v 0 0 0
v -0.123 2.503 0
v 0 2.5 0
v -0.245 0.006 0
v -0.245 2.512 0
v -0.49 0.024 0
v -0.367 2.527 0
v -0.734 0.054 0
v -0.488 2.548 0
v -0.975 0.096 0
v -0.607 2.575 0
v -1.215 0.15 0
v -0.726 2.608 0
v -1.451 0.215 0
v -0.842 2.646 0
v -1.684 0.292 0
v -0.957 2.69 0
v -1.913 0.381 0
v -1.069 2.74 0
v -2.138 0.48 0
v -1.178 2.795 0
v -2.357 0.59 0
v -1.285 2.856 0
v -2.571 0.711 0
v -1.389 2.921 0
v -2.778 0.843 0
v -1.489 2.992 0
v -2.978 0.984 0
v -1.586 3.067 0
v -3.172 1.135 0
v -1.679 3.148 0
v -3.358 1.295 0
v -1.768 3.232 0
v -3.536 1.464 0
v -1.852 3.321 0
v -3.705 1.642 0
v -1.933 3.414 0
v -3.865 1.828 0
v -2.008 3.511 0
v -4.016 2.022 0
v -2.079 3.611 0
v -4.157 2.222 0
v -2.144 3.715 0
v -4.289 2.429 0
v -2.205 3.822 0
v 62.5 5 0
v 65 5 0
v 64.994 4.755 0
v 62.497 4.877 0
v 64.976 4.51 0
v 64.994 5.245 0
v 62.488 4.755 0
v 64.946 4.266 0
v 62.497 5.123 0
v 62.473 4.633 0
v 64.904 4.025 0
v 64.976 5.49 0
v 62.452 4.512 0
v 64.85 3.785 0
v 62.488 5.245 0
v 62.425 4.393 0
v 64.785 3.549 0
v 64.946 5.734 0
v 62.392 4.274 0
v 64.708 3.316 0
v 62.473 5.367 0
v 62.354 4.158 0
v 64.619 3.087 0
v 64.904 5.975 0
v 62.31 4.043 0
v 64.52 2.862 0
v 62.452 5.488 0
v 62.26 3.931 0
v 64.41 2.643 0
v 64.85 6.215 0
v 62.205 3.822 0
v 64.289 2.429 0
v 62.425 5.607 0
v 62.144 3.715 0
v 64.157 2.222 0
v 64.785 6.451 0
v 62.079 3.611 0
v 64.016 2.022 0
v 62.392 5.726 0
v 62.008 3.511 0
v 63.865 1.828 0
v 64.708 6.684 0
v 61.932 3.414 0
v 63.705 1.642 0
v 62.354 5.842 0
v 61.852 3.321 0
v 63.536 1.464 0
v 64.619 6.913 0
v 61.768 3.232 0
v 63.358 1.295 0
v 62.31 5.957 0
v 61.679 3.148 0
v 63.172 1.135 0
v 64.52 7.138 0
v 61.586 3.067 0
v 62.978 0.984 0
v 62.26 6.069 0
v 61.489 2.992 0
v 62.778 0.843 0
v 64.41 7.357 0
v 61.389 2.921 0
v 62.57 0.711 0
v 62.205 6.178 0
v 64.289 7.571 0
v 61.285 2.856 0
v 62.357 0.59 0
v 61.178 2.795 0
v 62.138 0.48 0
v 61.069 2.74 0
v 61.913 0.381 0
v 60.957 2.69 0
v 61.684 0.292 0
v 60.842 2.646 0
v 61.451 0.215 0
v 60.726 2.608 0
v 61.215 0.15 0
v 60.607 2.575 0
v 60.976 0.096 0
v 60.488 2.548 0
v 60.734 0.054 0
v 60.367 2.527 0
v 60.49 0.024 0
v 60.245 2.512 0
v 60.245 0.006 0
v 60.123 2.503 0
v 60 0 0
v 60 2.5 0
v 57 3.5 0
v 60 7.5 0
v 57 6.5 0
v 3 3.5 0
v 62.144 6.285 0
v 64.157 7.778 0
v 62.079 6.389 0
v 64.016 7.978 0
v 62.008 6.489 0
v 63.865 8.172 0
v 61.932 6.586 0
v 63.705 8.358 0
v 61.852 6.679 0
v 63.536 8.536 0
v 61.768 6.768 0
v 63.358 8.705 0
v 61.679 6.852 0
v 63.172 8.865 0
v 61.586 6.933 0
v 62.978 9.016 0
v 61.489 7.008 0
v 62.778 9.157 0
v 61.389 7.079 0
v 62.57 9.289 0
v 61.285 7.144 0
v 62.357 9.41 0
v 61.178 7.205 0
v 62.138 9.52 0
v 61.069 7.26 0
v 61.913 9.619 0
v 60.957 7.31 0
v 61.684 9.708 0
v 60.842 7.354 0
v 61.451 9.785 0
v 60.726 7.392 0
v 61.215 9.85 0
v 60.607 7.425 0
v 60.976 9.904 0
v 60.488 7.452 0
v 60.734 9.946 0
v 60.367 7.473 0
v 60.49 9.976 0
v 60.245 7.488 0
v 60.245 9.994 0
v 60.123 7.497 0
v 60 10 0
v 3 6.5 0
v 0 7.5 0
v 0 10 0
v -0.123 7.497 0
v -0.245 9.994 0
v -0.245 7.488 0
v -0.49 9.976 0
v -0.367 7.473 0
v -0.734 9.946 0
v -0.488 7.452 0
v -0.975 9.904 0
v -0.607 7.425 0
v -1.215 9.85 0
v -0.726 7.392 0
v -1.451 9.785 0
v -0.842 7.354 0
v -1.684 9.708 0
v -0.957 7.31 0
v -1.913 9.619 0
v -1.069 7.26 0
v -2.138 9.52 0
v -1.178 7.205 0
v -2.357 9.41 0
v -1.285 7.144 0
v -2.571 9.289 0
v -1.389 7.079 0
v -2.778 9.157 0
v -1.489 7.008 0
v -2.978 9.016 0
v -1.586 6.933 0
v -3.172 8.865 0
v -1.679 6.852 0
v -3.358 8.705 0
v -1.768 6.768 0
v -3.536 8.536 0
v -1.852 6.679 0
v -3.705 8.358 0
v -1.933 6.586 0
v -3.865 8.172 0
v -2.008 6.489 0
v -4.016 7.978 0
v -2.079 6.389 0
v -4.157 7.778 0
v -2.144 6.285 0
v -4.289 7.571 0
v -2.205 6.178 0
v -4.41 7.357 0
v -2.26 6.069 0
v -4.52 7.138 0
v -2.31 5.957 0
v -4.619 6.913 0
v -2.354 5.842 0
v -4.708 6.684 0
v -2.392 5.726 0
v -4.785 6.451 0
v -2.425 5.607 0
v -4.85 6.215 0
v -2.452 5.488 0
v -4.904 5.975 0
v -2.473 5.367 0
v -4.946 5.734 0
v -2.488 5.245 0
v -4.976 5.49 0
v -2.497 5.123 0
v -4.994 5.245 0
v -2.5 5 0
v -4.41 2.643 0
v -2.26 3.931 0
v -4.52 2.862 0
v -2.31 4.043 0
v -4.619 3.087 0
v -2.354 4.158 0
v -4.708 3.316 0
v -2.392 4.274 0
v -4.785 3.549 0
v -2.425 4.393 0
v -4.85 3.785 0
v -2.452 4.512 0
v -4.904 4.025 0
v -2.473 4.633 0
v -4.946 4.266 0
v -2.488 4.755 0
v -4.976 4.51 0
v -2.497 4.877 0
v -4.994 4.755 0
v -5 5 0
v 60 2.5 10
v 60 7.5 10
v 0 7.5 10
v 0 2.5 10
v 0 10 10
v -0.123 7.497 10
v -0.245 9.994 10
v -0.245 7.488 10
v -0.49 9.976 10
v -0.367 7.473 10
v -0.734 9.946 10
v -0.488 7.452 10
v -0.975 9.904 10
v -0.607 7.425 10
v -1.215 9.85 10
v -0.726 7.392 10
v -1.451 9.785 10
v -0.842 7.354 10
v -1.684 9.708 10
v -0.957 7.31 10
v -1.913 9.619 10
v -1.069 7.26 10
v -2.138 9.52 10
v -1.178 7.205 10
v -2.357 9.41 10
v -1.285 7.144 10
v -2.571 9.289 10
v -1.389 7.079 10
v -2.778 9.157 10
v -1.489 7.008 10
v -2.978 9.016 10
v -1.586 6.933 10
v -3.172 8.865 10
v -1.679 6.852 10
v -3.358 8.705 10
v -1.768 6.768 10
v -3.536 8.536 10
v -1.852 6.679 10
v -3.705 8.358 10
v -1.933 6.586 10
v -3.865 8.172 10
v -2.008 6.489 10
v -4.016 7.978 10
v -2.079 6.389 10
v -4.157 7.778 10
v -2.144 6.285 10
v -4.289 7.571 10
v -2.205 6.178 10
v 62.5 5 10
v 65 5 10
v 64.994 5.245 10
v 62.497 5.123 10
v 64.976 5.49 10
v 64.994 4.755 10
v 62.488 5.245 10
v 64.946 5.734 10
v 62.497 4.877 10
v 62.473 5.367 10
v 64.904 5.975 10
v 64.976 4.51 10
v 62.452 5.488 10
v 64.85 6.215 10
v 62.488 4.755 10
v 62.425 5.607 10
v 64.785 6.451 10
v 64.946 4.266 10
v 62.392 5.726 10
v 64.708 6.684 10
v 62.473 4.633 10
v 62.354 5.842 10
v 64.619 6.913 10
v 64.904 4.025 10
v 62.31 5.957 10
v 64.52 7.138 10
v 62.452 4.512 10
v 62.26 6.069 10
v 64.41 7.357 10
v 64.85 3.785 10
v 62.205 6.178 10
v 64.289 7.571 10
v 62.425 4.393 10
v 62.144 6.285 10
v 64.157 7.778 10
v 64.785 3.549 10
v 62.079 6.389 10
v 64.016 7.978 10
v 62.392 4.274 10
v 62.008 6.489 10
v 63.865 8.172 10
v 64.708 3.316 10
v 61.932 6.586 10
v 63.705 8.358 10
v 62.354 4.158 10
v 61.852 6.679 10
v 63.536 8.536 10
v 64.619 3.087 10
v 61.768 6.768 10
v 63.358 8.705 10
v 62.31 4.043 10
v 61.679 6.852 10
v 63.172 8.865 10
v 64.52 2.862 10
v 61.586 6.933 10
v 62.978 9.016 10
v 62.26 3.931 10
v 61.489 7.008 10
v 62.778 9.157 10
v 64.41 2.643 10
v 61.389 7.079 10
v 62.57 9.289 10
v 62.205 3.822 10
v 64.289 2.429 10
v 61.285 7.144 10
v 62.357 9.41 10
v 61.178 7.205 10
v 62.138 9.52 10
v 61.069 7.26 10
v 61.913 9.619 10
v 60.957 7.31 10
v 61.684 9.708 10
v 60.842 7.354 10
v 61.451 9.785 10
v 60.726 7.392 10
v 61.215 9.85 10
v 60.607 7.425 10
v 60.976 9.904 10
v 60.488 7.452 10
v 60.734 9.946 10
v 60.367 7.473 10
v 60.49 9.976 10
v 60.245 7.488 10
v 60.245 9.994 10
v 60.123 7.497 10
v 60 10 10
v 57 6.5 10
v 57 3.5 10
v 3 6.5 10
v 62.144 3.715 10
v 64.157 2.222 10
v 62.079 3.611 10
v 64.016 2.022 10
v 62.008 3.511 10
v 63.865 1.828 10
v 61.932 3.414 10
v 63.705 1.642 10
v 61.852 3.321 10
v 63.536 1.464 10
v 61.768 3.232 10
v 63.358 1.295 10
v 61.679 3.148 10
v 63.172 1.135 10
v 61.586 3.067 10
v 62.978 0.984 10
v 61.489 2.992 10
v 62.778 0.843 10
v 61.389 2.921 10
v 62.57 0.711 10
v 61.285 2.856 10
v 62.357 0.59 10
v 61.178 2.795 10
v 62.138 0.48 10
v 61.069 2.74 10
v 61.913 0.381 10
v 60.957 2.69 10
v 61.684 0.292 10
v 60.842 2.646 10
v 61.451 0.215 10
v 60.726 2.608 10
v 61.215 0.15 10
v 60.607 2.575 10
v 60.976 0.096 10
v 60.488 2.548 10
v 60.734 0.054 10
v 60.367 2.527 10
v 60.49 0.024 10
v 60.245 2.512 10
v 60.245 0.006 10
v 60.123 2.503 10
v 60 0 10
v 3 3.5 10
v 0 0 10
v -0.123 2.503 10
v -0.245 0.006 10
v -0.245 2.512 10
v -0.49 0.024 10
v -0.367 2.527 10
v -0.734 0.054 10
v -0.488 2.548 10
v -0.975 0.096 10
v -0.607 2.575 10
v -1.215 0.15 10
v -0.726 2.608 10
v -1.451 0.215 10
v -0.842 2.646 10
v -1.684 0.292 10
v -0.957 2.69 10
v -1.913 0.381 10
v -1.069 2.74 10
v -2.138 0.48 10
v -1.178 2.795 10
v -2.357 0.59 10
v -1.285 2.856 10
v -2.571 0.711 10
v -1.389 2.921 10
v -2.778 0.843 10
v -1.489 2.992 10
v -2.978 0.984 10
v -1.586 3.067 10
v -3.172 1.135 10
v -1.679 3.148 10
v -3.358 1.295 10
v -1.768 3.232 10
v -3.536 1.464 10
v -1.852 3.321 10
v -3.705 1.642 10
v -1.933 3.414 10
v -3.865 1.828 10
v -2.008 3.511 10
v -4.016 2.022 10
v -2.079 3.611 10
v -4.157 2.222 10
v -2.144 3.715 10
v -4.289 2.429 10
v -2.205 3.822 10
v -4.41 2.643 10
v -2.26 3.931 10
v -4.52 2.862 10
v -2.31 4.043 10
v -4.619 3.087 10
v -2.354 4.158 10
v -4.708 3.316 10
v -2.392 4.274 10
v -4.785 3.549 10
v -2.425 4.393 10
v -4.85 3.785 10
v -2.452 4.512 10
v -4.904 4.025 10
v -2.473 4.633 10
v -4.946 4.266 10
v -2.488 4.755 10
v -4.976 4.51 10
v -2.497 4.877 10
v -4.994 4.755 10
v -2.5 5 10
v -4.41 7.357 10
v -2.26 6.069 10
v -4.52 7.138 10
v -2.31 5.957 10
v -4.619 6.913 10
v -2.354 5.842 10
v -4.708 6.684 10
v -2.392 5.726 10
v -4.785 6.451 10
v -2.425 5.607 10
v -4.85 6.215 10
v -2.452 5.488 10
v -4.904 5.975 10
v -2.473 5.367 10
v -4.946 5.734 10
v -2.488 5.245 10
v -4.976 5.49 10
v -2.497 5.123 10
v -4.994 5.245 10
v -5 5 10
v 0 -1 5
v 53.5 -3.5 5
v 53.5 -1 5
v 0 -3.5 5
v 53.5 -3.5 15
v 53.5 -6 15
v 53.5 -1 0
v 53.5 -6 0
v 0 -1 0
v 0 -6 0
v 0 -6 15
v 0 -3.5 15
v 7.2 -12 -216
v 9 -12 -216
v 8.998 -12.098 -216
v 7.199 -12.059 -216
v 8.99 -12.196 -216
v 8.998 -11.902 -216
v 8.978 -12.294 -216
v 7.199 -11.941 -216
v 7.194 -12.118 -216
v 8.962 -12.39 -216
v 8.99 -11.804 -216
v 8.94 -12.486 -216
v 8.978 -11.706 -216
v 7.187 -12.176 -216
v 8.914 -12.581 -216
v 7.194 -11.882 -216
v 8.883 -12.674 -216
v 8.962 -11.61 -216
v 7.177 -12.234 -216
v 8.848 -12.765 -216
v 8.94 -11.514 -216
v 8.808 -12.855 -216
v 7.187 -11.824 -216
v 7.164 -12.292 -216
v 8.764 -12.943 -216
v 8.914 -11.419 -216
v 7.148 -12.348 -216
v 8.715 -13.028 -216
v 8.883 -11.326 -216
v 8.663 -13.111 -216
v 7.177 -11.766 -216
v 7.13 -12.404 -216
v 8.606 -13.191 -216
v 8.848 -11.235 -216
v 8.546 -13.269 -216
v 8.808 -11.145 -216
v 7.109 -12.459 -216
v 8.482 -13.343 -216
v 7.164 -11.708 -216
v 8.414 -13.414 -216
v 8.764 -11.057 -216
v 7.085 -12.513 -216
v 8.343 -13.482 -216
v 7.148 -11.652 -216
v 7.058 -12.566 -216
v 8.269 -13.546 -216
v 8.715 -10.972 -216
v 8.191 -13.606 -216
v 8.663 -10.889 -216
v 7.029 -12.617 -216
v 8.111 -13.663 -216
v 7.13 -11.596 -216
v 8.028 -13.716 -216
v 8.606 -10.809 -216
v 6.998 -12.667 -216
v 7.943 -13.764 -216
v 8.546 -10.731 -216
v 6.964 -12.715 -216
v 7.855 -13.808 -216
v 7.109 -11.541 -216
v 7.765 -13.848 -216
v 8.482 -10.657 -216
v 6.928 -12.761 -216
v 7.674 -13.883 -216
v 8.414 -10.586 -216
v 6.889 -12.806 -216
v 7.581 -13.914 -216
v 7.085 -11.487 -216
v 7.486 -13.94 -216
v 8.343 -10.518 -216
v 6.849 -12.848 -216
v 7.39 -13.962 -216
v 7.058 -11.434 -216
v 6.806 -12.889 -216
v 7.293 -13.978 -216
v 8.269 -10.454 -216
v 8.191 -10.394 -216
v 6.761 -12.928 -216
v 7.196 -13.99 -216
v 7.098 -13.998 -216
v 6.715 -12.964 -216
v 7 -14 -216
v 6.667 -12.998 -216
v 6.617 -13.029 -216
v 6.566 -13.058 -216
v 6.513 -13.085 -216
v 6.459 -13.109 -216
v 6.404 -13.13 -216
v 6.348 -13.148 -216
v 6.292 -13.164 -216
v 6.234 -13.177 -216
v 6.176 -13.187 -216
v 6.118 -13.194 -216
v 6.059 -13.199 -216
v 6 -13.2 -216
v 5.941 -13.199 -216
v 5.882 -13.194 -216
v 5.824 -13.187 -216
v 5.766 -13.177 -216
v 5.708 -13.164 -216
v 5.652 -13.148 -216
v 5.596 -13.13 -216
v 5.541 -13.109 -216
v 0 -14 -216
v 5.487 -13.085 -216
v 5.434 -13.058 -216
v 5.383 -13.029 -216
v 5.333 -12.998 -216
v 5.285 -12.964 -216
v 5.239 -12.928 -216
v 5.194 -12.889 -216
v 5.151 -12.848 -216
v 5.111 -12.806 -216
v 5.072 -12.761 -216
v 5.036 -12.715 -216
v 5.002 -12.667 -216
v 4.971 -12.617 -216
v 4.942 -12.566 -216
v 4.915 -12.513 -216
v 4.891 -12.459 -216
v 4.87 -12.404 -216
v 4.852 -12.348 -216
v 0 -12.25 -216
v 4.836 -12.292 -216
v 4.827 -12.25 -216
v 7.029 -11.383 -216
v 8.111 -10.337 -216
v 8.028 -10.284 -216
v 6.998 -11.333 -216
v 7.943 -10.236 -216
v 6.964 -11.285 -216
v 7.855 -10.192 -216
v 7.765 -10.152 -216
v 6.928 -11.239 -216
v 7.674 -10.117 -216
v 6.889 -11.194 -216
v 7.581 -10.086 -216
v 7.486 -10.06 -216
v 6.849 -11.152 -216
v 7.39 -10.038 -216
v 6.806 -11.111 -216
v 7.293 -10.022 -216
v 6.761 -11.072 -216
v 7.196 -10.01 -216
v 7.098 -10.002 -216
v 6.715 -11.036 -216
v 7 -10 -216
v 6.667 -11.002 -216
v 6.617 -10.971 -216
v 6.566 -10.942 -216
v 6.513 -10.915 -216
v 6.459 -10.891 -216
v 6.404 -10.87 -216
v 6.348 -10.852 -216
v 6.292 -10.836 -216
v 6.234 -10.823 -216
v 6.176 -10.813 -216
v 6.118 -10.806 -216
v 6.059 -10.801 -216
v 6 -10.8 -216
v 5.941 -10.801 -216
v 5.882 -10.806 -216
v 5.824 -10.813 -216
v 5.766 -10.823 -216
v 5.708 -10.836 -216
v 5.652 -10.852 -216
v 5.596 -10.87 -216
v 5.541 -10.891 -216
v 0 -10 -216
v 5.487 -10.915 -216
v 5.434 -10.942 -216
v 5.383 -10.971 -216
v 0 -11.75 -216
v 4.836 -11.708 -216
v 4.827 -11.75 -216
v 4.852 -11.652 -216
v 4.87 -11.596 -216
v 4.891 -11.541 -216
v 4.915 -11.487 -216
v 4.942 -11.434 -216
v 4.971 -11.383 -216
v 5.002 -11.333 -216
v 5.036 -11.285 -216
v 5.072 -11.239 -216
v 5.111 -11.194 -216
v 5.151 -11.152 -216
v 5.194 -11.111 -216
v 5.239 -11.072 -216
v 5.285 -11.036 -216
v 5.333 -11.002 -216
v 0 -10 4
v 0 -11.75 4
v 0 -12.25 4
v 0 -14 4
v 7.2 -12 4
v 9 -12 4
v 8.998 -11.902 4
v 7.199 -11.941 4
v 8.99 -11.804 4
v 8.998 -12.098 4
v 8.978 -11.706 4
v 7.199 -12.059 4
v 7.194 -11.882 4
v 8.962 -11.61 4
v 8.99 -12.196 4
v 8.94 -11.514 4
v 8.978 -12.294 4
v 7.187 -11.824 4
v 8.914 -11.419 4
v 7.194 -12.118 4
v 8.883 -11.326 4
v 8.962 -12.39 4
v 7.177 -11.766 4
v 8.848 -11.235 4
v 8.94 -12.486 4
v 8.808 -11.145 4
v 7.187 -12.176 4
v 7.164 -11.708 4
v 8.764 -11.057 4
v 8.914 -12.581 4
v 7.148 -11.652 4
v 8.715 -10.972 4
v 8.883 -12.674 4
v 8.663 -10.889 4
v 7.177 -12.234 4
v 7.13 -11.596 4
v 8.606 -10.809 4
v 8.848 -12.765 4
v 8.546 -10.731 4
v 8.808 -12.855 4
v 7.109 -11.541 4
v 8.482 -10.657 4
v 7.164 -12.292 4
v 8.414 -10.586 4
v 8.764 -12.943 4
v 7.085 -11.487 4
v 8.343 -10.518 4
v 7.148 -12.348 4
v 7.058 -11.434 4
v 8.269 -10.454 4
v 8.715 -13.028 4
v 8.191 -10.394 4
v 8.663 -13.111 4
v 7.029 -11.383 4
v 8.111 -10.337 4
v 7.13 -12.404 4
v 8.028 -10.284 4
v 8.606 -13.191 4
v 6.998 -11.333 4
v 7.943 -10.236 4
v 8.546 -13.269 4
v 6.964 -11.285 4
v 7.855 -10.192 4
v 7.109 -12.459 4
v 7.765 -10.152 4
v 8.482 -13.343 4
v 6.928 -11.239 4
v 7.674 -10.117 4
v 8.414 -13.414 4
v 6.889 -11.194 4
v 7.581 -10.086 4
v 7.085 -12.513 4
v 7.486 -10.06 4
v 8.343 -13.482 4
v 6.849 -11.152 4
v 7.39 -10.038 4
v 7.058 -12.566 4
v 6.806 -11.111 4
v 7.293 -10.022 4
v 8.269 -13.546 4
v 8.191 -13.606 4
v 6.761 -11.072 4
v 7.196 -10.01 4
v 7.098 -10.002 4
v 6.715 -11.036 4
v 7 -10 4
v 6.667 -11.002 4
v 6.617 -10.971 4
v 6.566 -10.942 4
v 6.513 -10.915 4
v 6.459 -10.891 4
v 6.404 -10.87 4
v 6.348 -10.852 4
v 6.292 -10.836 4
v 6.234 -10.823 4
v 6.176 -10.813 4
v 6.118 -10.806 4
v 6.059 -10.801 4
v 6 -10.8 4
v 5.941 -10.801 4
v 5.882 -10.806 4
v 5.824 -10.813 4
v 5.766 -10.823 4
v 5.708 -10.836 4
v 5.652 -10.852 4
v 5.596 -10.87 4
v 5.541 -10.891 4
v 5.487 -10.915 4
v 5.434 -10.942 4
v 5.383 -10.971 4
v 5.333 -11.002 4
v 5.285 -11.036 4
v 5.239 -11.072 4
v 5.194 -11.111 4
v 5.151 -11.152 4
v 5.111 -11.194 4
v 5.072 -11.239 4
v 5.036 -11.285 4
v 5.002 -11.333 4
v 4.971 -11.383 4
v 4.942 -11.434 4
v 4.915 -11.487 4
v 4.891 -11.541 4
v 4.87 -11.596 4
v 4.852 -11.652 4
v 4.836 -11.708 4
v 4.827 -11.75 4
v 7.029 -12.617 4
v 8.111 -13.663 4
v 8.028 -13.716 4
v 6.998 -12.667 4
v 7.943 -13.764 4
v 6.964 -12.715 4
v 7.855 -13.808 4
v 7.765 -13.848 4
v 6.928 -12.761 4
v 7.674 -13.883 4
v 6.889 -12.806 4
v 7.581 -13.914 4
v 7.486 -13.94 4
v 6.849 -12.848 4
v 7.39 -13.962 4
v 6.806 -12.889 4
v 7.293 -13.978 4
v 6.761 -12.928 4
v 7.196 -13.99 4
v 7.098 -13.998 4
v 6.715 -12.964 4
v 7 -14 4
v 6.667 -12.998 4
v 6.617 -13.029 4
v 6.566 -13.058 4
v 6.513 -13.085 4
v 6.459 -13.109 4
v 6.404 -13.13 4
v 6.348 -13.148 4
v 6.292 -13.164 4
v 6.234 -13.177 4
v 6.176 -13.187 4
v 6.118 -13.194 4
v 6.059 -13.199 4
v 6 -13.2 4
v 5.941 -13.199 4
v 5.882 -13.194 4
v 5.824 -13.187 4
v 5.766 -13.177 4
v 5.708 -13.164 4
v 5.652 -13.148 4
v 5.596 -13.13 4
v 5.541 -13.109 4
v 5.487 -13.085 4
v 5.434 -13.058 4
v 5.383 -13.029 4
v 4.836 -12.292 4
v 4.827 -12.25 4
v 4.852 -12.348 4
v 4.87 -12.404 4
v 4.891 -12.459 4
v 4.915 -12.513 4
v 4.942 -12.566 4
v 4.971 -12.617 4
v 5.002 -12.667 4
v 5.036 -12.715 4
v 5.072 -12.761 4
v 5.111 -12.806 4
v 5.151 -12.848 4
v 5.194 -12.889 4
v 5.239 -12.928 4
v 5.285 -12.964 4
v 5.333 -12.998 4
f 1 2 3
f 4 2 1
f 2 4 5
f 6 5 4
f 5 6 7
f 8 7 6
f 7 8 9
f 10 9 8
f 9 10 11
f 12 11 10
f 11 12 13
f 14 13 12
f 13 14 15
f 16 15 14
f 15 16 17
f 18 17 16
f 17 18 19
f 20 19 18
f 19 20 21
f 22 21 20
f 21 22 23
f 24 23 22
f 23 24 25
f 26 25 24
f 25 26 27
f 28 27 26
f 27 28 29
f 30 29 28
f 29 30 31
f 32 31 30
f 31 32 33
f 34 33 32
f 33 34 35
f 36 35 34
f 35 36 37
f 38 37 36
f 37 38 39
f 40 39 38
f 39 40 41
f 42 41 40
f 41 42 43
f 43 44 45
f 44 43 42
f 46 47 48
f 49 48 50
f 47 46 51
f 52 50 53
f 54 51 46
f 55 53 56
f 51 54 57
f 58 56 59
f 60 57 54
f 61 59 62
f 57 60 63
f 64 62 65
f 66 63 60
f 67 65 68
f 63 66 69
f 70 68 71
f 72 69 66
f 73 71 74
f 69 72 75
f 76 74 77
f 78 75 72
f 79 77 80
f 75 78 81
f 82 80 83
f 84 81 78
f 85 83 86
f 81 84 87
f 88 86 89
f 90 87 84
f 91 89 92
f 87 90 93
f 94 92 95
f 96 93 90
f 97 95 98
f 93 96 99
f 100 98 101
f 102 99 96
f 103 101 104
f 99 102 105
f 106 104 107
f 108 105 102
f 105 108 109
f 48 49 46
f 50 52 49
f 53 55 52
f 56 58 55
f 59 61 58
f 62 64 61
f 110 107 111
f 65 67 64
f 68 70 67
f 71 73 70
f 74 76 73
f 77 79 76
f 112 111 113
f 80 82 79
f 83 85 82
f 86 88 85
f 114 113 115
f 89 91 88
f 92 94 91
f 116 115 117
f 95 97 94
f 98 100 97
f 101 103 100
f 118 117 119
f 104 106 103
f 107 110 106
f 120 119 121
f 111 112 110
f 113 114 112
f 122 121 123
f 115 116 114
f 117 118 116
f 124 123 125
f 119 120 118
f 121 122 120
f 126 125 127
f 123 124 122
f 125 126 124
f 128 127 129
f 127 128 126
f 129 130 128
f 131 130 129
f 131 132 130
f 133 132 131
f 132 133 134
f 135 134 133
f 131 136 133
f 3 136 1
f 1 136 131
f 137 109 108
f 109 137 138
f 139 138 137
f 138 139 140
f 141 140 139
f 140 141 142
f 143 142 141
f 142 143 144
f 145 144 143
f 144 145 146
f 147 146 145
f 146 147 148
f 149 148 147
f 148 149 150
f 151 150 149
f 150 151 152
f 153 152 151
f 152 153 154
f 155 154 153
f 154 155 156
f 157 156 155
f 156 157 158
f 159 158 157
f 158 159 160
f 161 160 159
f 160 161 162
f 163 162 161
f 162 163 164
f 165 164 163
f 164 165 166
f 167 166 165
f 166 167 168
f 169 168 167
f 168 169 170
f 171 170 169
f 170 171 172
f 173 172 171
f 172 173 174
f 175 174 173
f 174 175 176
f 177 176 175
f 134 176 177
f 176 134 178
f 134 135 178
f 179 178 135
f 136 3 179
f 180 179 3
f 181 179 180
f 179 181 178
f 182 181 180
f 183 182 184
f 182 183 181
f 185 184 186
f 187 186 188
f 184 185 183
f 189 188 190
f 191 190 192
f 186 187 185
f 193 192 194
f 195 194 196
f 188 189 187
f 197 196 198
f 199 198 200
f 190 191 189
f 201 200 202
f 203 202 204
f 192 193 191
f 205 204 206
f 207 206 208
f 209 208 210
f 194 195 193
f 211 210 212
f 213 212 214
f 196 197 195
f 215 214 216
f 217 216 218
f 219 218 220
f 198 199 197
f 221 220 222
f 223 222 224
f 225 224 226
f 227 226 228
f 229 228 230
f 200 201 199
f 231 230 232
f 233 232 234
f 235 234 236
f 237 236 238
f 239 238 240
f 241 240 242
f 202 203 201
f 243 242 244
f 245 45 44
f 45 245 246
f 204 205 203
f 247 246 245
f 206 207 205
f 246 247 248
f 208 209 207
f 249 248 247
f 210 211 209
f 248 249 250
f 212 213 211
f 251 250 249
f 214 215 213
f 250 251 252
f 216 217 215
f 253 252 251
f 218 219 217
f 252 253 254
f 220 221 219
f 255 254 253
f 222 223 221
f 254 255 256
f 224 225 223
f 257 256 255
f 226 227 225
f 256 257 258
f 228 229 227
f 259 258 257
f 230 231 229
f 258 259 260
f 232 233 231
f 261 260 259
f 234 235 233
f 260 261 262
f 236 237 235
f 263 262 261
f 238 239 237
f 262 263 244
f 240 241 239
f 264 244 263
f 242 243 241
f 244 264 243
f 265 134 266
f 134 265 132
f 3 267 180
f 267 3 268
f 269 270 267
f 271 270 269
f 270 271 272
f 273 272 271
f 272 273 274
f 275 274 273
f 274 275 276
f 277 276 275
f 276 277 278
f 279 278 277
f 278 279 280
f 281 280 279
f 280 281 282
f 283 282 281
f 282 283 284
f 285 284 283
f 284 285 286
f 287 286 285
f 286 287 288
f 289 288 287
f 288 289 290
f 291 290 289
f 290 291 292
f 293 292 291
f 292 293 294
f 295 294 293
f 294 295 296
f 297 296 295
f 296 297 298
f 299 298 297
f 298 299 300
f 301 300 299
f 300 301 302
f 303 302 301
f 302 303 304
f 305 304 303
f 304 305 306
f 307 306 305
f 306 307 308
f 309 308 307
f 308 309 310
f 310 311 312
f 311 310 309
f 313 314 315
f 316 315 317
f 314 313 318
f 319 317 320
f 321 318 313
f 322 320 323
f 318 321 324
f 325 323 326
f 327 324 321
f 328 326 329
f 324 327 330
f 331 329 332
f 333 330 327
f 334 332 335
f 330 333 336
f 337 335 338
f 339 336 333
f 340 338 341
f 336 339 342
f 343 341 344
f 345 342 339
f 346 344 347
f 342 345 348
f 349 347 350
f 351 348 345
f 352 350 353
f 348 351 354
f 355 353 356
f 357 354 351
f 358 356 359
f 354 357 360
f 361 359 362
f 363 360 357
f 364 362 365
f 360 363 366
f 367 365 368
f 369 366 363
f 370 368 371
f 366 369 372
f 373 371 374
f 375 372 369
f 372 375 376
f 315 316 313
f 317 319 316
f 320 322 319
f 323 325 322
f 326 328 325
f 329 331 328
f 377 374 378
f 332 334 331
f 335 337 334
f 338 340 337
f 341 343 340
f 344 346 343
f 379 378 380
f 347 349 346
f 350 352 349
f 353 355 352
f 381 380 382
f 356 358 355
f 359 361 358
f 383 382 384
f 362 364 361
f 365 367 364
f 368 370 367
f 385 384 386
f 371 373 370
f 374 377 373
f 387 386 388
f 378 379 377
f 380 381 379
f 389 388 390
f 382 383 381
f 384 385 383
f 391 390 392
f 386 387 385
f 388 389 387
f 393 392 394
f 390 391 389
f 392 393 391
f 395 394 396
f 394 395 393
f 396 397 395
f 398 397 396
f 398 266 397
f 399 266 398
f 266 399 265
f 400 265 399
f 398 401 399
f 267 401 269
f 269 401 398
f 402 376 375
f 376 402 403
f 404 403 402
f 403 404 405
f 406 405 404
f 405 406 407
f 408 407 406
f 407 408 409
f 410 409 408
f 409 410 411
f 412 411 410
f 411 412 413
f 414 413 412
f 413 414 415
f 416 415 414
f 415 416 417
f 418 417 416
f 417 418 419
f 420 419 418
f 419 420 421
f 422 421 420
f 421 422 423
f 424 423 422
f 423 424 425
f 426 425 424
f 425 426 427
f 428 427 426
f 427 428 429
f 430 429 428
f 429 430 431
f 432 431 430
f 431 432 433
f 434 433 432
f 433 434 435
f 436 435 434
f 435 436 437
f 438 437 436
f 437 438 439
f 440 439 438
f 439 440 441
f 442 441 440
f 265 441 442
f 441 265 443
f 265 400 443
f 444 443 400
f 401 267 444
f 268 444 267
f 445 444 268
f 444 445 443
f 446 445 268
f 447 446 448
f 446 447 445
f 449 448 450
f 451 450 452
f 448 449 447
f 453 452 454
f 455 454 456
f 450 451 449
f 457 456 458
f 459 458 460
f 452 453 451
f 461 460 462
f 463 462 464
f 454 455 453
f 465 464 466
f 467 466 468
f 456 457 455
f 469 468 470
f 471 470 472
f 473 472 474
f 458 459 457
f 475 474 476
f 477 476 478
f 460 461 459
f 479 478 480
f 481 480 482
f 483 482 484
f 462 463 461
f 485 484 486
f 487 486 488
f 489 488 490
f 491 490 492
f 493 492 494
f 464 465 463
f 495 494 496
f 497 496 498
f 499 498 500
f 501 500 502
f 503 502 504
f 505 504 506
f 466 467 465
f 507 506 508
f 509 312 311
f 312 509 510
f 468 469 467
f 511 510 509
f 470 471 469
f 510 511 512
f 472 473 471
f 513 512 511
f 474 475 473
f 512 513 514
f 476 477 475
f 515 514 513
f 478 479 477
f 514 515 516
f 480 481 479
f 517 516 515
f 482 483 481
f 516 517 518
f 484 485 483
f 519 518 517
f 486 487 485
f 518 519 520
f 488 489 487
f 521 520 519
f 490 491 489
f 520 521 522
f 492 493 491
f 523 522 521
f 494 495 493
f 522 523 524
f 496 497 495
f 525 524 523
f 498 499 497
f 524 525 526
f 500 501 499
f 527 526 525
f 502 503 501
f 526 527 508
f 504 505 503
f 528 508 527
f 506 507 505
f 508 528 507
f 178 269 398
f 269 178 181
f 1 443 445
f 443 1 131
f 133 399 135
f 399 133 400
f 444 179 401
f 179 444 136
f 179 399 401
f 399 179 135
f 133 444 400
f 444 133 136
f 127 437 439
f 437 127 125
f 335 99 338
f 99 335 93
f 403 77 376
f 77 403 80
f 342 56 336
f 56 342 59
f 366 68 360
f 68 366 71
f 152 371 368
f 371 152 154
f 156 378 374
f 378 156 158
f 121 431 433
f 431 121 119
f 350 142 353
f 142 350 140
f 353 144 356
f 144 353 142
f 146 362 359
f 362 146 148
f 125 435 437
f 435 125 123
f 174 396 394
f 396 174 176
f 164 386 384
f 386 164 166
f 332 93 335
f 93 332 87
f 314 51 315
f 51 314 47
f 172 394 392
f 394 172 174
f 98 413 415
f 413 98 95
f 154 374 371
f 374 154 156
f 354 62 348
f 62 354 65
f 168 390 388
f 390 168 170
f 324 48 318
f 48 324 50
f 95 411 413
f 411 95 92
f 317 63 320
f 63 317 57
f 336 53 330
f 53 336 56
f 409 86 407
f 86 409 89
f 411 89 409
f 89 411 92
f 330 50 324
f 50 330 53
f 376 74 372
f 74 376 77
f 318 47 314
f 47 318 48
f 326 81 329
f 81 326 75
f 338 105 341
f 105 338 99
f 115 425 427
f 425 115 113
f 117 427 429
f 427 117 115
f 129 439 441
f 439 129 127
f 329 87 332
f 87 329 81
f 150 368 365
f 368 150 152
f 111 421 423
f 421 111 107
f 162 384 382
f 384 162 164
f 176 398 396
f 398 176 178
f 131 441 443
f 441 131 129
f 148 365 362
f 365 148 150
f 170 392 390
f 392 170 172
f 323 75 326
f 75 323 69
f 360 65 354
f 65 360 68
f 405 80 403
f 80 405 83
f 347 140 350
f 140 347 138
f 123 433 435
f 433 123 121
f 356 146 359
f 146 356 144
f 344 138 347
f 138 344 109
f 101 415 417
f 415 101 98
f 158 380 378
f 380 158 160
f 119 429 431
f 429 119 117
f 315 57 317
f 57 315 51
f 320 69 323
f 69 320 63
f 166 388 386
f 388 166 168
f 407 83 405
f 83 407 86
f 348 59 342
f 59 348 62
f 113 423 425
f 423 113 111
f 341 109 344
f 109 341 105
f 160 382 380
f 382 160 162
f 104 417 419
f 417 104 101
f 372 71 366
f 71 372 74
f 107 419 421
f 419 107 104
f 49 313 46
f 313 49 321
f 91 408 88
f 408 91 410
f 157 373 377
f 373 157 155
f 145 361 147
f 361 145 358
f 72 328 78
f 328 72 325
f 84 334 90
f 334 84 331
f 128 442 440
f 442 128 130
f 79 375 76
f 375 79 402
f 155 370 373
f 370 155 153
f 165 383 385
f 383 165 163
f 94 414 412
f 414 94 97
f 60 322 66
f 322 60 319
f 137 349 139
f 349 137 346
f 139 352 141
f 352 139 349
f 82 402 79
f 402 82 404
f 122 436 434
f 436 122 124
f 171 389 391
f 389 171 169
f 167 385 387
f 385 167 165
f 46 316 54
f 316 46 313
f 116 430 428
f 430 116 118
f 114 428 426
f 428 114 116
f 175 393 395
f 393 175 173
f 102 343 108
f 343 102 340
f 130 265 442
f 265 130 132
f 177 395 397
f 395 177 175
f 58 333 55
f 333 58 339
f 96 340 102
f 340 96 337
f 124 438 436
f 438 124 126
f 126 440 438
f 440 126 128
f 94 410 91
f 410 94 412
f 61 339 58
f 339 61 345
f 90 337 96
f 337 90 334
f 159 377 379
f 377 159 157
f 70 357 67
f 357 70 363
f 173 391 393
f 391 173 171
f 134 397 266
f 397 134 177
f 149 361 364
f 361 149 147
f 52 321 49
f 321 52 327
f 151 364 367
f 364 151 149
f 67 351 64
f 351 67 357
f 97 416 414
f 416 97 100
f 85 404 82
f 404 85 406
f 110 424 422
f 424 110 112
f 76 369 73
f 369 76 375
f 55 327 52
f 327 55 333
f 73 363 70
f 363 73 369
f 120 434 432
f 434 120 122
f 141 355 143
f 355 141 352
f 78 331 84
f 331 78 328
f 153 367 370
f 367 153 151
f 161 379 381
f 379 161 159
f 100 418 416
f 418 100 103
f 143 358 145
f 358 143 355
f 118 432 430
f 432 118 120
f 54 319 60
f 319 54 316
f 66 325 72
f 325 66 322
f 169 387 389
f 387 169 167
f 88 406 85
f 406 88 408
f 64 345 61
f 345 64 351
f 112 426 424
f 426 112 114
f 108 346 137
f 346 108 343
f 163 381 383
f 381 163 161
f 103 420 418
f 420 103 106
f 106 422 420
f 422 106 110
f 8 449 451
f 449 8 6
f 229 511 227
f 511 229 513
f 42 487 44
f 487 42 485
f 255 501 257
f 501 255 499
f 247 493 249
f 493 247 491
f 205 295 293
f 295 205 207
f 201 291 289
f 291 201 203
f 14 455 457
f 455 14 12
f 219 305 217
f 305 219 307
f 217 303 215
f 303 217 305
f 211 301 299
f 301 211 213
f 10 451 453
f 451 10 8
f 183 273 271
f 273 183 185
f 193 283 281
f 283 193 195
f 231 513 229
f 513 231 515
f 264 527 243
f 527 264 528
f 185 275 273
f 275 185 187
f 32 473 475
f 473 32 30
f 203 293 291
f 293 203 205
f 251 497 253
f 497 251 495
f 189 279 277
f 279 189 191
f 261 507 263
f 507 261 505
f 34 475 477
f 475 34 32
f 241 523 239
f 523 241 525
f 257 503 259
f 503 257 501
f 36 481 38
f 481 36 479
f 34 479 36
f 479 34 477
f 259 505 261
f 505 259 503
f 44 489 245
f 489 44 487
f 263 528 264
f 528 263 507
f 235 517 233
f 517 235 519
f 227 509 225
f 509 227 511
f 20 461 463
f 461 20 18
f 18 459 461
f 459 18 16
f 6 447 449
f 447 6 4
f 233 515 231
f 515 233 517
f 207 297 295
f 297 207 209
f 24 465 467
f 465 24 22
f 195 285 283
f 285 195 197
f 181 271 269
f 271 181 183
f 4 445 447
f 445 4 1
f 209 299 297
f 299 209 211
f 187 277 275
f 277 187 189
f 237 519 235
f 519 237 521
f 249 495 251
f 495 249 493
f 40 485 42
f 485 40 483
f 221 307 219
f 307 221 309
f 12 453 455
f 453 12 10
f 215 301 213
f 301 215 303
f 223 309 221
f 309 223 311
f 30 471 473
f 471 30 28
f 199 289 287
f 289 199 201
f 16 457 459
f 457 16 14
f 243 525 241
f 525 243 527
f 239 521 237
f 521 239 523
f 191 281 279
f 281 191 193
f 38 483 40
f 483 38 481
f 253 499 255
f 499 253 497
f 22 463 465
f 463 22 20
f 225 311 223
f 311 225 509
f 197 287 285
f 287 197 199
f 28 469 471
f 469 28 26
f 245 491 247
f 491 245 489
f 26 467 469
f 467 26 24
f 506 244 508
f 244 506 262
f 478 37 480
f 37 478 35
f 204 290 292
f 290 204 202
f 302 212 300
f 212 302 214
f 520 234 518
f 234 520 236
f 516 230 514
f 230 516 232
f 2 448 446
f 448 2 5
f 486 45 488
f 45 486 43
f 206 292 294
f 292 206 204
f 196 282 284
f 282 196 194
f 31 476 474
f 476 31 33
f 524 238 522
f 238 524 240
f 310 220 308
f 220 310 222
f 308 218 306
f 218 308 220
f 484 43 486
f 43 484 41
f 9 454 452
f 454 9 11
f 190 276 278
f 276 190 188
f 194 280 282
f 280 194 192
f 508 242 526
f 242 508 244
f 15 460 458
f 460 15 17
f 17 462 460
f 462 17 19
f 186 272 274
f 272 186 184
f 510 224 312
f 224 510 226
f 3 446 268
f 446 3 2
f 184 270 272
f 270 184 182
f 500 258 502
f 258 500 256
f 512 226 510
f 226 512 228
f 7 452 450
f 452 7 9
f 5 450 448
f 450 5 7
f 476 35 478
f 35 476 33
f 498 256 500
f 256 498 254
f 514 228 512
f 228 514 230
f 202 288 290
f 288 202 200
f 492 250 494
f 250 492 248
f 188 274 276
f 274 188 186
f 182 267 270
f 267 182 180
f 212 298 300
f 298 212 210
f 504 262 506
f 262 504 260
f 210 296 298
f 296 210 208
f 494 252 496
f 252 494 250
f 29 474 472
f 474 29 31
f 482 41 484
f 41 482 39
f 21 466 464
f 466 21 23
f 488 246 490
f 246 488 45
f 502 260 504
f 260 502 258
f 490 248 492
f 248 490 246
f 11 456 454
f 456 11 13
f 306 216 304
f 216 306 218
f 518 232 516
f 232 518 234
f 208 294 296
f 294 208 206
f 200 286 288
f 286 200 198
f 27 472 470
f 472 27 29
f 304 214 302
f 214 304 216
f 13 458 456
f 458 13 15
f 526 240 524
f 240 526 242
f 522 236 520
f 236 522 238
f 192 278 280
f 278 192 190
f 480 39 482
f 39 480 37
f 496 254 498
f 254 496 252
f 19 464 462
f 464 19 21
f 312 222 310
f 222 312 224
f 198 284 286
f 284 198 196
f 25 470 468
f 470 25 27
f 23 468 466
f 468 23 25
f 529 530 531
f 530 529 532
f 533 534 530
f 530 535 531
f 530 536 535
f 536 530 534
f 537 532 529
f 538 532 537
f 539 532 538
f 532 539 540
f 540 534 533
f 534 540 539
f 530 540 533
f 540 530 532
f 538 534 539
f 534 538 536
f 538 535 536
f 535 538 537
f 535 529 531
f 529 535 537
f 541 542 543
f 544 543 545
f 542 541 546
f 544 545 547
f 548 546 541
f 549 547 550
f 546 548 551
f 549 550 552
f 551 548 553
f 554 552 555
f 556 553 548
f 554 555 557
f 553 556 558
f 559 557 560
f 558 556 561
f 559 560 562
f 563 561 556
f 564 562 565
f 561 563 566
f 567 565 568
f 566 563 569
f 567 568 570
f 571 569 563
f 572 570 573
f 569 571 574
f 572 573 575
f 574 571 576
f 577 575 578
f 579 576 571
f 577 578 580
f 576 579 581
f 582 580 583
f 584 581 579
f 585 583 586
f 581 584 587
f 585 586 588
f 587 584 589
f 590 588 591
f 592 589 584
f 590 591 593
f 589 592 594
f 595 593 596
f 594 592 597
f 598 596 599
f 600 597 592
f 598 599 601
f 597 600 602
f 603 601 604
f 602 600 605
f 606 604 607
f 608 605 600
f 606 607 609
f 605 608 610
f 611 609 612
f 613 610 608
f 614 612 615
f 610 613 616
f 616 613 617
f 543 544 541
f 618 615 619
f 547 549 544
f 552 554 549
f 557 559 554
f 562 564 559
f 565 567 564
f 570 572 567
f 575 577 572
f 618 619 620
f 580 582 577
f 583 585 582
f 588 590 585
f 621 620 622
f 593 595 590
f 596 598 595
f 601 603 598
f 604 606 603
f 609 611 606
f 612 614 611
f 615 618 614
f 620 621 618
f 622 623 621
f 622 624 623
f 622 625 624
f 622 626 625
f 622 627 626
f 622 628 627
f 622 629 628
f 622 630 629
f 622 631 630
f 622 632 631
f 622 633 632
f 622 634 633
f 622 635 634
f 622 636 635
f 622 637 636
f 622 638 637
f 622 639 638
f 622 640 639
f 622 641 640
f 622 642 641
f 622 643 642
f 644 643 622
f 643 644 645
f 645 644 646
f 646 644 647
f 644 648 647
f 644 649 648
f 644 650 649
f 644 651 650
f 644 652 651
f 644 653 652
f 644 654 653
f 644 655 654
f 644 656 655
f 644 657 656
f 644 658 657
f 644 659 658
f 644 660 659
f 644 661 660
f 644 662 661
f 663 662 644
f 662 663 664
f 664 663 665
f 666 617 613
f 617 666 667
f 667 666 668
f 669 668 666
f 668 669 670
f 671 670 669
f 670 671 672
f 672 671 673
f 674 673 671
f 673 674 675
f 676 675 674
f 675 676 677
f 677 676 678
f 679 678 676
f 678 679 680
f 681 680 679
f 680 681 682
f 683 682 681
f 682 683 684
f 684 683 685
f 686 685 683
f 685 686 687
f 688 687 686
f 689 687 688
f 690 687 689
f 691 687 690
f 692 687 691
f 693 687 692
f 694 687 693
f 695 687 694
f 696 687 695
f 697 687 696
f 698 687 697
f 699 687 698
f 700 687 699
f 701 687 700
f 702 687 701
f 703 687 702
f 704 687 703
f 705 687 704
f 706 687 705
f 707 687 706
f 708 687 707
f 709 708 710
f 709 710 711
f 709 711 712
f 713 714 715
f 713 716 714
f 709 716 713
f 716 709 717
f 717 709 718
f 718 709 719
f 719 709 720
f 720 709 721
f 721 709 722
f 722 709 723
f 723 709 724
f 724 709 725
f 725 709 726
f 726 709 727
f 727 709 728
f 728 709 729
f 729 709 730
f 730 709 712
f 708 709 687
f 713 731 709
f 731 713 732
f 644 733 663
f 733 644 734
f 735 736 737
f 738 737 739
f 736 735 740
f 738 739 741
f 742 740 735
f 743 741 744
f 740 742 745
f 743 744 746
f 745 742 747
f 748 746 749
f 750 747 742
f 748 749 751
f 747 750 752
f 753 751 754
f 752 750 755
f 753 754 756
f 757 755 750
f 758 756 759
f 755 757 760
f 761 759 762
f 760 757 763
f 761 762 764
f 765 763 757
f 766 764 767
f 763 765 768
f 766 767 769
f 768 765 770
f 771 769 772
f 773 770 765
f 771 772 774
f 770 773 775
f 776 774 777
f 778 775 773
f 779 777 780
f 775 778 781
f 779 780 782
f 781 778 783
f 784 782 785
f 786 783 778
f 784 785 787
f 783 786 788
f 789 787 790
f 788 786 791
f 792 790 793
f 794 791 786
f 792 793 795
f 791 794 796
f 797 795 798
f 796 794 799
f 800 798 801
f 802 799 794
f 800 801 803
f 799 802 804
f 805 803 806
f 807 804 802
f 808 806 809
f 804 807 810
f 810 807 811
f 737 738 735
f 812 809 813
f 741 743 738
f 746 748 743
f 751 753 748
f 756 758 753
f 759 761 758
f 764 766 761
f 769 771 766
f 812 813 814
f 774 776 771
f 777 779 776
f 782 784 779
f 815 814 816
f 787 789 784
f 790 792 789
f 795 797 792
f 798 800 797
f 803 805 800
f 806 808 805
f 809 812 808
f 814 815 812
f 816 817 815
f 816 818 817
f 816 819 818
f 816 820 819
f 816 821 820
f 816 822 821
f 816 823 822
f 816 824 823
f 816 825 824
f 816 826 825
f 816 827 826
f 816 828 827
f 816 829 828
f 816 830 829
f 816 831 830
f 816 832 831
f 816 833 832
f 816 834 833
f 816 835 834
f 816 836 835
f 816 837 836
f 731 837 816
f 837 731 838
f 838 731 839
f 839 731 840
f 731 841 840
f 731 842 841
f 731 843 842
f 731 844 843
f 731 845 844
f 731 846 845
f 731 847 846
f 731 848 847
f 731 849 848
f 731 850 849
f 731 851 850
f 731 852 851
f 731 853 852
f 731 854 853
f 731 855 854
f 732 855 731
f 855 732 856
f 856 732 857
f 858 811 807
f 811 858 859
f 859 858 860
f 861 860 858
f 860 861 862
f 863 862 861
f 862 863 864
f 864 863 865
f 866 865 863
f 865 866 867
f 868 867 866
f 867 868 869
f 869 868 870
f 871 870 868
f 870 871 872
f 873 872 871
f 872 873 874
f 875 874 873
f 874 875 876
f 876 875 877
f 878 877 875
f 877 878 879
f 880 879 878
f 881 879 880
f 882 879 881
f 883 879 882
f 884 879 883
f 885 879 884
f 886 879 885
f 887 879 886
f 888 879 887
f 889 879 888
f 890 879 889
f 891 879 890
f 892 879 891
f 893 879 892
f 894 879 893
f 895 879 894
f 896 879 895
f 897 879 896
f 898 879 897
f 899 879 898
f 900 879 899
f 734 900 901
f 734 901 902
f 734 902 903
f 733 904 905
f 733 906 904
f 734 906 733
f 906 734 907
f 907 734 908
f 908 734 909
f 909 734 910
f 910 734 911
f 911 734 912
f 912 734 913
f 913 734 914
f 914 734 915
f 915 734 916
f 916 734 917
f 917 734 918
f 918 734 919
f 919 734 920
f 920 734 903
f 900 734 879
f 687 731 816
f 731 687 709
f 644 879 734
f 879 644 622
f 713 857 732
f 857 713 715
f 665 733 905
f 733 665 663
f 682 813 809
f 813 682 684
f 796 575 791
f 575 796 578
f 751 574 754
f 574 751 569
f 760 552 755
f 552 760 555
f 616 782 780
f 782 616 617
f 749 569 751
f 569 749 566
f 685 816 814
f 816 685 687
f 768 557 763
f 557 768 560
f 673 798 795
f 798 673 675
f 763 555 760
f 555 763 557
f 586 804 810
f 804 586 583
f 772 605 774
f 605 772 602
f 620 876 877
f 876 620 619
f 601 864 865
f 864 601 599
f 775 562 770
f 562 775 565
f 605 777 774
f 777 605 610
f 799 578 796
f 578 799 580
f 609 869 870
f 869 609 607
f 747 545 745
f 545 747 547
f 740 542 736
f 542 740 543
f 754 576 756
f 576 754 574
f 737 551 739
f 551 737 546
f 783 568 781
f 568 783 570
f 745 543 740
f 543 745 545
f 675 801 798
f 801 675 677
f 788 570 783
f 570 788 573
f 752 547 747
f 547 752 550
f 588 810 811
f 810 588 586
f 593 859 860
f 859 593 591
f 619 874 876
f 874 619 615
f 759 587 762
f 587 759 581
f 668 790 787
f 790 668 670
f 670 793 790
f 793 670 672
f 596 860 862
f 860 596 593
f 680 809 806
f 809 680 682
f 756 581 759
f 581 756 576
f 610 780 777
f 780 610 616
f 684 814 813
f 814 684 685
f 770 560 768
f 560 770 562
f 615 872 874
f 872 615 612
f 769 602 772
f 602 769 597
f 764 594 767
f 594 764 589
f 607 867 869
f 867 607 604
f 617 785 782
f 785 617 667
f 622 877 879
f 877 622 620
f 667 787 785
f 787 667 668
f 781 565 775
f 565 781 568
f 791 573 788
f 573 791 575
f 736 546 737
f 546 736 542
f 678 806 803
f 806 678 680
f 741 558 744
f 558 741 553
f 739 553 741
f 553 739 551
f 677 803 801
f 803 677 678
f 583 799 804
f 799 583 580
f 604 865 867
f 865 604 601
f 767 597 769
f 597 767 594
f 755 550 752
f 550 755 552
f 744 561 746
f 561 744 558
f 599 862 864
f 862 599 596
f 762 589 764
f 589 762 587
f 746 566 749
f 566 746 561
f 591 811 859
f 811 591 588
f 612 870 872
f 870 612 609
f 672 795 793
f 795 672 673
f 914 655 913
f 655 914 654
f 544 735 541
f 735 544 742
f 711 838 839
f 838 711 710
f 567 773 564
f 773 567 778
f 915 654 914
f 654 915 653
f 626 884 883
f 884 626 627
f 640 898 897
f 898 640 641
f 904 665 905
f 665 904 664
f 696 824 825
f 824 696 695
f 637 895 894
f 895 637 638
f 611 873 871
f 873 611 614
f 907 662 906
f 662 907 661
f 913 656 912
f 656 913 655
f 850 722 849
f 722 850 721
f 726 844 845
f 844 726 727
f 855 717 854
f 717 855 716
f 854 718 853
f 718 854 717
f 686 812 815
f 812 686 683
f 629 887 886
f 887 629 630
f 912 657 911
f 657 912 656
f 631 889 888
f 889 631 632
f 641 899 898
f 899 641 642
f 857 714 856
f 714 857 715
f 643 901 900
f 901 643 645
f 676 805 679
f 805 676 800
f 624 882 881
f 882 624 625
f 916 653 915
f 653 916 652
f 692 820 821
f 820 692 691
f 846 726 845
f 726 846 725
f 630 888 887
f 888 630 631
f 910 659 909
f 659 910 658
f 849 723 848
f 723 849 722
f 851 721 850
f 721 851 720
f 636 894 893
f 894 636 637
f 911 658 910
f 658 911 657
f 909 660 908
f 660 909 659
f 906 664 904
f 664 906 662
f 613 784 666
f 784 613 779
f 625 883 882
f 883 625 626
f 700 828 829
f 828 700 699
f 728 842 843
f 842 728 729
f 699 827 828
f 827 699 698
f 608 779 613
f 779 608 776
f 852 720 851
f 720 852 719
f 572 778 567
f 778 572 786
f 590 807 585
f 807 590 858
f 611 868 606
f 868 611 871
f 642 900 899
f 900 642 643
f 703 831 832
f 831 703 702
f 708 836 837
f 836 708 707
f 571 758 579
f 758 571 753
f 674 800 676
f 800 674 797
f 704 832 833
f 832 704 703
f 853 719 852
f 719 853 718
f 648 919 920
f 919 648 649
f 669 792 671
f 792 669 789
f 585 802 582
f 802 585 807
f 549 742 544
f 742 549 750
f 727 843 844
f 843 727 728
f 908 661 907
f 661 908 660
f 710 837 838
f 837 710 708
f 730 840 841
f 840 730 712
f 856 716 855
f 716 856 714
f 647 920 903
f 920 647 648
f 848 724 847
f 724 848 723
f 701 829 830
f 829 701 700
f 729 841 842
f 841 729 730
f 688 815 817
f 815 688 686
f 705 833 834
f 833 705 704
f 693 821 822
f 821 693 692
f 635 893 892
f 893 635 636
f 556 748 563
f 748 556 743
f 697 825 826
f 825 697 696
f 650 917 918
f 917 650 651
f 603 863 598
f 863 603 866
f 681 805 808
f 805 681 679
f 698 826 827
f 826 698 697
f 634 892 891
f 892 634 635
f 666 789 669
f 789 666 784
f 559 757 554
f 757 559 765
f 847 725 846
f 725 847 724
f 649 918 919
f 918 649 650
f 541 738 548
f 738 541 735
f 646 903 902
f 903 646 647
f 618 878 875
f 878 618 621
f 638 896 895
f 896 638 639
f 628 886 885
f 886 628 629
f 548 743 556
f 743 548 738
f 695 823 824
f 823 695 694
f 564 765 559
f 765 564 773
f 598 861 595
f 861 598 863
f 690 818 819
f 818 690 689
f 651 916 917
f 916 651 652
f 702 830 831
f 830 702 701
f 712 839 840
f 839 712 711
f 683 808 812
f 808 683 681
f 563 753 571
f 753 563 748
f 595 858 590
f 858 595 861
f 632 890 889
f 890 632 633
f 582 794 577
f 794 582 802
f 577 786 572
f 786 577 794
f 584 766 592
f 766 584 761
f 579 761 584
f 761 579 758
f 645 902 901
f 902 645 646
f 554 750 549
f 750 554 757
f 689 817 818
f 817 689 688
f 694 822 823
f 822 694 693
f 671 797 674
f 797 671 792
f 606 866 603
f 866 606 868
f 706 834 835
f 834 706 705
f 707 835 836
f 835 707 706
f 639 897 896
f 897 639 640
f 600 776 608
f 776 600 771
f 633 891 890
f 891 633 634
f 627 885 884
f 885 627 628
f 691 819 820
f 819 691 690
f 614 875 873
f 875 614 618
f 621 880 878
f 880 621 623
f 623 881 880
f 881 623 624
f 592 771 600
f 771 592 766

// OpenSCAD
// Generated by SolidPython 0.4.6 on 2020-04-04 13:21:45


rotate(a = [0, 90, 0]) {
	union() {
		translate(v = [-10.0000000000, 0, 0]) {
			union() {
				difference() {
					cube(size = [10.0000000000, 10.0000000000, 60.0000000000]);
					translate(v = [0, 0, 3.0000000000]) {
						translate(v = [0, 3.5000000000, 0]) {
							cube(size = [10.0000000000, 3.0000000000, 54.0000000000]);
						}
					}
				}
				translate(v = [0, 0, 60.0000000000]) {
					translate(v = [0, 5.0000000000, 0]) {
						rotate(a = [0, 90, 0]) {
							difference() {
								cylinder($fn = 128, d = 10.0000000000, h = 10.0000000000);
								cylinder($fn = 128, d = 5.0000000000, h = 10.0000000000);
								translate(v = [0, -5.0000000000, 0]) {
									cube(size = [10.0000000000, 10.0000000000, 10.0000000000]);
								}
							}
						}
					}
				}
				translate(v = [0, 5.0000000000, 0]) {
					translate(v = [10.0000000000, 0, 0]) {
						rotate(a = [0, -90, 0]) {
							difference() {
								cylinder($fn = 128, d = 10.0000000000, h = 10.0000000000);
								cylinder($fn = 128, d = 5.0000000000, h = 10.0000000000);
								translate(v = [0, -5.0000000000, 0]) {
									cube(size = [10.0000000000, 10.0000000000, 10.0000000000]);
								}
							}
						}
					}
				}
			}
		}
		translate(v = [-15.0000000000, 0, 0]) {
			translate(v = [0, -6.0000000000, 0]) {
				union() {
					cube(size = [10.0000000000, 2.5000000000, 53.5000000000]);
					translate(v = [10.0000000000, 0, 0]) {
						cube(size = [5.0000000000, 5.0000000000, 53.5000000000]);
					}
				}
			}
		}
		translate(v = [-4.0000000000, 0, 0]) {
			translate(v = [0, -14.0000000000, 0]) {
				difference() {
					union() {
						difference() {
							cube(size = [220.0000000000, 4.0000000000, 7.0000000000]);
							translate(v = [0, 1.7500000000, 0]) {
								cube(size = [220.0000000000, 0.5000000000, 6.0000000000]);
							}
						}
						translate(v = [0, 2.0000000000, 0]) {
							translate(v = [0, 0, 7.0000000000]) {
								rotate(a = [0, 90, 0]) {
									cylinder($fn = 128, d = 4.0000000000, h = 220.0000000000);
								}
							}
						}
					}
					translate(v = [0, 2.0000000000, 0]) {
						translate(v = [0, 0, 6.0000000000]) {
							rotate(a = [0, 90, 0]) {
								cylinder($fn = 128, d = 2.4000000000, h = 220.0000000000);
							}
						}
					}
				}
			}
		}
	}
}
/***********************************************
*********      SolidPython code:      **********
************************************************
 
import solid as s
import solid.utils as u
import math

def render(suffix, final):
    suffix += ".scad"
    s.scad_render_to_file(final, __file__.replace(".py", suffix))

wire_dia = 2.4
wire_rad = wire_dia / 2.0
wire_height = 6.0
cheek_len = 220.0
cheek_height = 7.0
cheek_depth = 4.0

ear_height = 60.0
ear_length = 10.0
ear_depth = 10.0
fabric_height = 160.0
fabric_thick = 0.5
slot_edge = 3.0
slot_height = ear_height - slot_edge - slot_edge
slot = 3.0
wedge = slot - fabric_thick
wedge_height = slot_height - fabric_thick
wedge_stop = 5.0
lug_hole = 5.0

# earpiece
e = s.cube(size=[ear_length, ear_depth, ear_height])

# earpiece slot
e -= u.up(slot_edge)(
    u.forward((ear_depth / 2.0) - (slot / 2.0))(
        s.cube(size=[ear_length, slot, slot_height])
    )
)
# earpiece lugs
lug = s.cylinder(d=ear_depth, h=ear_length, segments=128)
lug -= s.cylinder(d=lug_hole, h=ear_length, segments=128)
lug -= u.back(ear_depth / 2.0)(
    s.cube(size=[ear_length, ear_depth, ear_length])
)
e += u.up(ear_height)(u.forward(ear_depth / 2.0)(
        u.rotate(a=[0,90,0])(lug)
    )
)
e += u.forward(ear_depth / 2.0)(
    u.right(ear_length)(
        u.rotate(a=[0,-90,0])(lug)
    )
)

# wedge
w = s.cube(size=[ear_length, wedge, wedge_height])
w += u.right(ear_length)(
    s.cube(size=[wedge_stop, wedge_stop, wedge_height])
)

# cheek wire surround
c = s.cube(size=[cheek_len, cheek_depth, cheek_height])
c -= u.forward((cheek_depth / 2.0) - (fabric_thick / 2.0))(
    s.cube(size=[cheek_len, fabric_thick, wire_height])
)
c += u.forward(cheek_depth / 2.0)(
    u.up(cheek_height)(
        u.rotate(a=[0,90,0])(
            s.cylinder(d=cheek_depth, h=cheek_len, segments=128)
        )
    )
)
c -= u.forward(cheek_depth / 2.0)(
    u.up(wire_height)(
        u.rotate(a=[0,90,0])(
            s.cylinder(d=wire_dia, h=cheek_len, segments=128)
        )
    )
)

final = u.left(ear_length)(e) + \
    u.left(ear_length + wedge_stop)(u.back(6.0)(w)) + \
    u.left(cheek_depth)(u.back(14.0)(c))

render('', s.rotate(a=[0, 90, 0])(final))
render('ear', s.rotate(a=[0, -90, 0])(e))
render('wedge', u.up(ear_length + wedge_stop)(s.rotate(a=[0, 90, 0])(w)))
render('cheek', s.rotate(a=[0, 0, 30])(c))
# s.scad_render_to_file(final, __file__.replace('.py', '.scad'))
 
 
************************************************/
